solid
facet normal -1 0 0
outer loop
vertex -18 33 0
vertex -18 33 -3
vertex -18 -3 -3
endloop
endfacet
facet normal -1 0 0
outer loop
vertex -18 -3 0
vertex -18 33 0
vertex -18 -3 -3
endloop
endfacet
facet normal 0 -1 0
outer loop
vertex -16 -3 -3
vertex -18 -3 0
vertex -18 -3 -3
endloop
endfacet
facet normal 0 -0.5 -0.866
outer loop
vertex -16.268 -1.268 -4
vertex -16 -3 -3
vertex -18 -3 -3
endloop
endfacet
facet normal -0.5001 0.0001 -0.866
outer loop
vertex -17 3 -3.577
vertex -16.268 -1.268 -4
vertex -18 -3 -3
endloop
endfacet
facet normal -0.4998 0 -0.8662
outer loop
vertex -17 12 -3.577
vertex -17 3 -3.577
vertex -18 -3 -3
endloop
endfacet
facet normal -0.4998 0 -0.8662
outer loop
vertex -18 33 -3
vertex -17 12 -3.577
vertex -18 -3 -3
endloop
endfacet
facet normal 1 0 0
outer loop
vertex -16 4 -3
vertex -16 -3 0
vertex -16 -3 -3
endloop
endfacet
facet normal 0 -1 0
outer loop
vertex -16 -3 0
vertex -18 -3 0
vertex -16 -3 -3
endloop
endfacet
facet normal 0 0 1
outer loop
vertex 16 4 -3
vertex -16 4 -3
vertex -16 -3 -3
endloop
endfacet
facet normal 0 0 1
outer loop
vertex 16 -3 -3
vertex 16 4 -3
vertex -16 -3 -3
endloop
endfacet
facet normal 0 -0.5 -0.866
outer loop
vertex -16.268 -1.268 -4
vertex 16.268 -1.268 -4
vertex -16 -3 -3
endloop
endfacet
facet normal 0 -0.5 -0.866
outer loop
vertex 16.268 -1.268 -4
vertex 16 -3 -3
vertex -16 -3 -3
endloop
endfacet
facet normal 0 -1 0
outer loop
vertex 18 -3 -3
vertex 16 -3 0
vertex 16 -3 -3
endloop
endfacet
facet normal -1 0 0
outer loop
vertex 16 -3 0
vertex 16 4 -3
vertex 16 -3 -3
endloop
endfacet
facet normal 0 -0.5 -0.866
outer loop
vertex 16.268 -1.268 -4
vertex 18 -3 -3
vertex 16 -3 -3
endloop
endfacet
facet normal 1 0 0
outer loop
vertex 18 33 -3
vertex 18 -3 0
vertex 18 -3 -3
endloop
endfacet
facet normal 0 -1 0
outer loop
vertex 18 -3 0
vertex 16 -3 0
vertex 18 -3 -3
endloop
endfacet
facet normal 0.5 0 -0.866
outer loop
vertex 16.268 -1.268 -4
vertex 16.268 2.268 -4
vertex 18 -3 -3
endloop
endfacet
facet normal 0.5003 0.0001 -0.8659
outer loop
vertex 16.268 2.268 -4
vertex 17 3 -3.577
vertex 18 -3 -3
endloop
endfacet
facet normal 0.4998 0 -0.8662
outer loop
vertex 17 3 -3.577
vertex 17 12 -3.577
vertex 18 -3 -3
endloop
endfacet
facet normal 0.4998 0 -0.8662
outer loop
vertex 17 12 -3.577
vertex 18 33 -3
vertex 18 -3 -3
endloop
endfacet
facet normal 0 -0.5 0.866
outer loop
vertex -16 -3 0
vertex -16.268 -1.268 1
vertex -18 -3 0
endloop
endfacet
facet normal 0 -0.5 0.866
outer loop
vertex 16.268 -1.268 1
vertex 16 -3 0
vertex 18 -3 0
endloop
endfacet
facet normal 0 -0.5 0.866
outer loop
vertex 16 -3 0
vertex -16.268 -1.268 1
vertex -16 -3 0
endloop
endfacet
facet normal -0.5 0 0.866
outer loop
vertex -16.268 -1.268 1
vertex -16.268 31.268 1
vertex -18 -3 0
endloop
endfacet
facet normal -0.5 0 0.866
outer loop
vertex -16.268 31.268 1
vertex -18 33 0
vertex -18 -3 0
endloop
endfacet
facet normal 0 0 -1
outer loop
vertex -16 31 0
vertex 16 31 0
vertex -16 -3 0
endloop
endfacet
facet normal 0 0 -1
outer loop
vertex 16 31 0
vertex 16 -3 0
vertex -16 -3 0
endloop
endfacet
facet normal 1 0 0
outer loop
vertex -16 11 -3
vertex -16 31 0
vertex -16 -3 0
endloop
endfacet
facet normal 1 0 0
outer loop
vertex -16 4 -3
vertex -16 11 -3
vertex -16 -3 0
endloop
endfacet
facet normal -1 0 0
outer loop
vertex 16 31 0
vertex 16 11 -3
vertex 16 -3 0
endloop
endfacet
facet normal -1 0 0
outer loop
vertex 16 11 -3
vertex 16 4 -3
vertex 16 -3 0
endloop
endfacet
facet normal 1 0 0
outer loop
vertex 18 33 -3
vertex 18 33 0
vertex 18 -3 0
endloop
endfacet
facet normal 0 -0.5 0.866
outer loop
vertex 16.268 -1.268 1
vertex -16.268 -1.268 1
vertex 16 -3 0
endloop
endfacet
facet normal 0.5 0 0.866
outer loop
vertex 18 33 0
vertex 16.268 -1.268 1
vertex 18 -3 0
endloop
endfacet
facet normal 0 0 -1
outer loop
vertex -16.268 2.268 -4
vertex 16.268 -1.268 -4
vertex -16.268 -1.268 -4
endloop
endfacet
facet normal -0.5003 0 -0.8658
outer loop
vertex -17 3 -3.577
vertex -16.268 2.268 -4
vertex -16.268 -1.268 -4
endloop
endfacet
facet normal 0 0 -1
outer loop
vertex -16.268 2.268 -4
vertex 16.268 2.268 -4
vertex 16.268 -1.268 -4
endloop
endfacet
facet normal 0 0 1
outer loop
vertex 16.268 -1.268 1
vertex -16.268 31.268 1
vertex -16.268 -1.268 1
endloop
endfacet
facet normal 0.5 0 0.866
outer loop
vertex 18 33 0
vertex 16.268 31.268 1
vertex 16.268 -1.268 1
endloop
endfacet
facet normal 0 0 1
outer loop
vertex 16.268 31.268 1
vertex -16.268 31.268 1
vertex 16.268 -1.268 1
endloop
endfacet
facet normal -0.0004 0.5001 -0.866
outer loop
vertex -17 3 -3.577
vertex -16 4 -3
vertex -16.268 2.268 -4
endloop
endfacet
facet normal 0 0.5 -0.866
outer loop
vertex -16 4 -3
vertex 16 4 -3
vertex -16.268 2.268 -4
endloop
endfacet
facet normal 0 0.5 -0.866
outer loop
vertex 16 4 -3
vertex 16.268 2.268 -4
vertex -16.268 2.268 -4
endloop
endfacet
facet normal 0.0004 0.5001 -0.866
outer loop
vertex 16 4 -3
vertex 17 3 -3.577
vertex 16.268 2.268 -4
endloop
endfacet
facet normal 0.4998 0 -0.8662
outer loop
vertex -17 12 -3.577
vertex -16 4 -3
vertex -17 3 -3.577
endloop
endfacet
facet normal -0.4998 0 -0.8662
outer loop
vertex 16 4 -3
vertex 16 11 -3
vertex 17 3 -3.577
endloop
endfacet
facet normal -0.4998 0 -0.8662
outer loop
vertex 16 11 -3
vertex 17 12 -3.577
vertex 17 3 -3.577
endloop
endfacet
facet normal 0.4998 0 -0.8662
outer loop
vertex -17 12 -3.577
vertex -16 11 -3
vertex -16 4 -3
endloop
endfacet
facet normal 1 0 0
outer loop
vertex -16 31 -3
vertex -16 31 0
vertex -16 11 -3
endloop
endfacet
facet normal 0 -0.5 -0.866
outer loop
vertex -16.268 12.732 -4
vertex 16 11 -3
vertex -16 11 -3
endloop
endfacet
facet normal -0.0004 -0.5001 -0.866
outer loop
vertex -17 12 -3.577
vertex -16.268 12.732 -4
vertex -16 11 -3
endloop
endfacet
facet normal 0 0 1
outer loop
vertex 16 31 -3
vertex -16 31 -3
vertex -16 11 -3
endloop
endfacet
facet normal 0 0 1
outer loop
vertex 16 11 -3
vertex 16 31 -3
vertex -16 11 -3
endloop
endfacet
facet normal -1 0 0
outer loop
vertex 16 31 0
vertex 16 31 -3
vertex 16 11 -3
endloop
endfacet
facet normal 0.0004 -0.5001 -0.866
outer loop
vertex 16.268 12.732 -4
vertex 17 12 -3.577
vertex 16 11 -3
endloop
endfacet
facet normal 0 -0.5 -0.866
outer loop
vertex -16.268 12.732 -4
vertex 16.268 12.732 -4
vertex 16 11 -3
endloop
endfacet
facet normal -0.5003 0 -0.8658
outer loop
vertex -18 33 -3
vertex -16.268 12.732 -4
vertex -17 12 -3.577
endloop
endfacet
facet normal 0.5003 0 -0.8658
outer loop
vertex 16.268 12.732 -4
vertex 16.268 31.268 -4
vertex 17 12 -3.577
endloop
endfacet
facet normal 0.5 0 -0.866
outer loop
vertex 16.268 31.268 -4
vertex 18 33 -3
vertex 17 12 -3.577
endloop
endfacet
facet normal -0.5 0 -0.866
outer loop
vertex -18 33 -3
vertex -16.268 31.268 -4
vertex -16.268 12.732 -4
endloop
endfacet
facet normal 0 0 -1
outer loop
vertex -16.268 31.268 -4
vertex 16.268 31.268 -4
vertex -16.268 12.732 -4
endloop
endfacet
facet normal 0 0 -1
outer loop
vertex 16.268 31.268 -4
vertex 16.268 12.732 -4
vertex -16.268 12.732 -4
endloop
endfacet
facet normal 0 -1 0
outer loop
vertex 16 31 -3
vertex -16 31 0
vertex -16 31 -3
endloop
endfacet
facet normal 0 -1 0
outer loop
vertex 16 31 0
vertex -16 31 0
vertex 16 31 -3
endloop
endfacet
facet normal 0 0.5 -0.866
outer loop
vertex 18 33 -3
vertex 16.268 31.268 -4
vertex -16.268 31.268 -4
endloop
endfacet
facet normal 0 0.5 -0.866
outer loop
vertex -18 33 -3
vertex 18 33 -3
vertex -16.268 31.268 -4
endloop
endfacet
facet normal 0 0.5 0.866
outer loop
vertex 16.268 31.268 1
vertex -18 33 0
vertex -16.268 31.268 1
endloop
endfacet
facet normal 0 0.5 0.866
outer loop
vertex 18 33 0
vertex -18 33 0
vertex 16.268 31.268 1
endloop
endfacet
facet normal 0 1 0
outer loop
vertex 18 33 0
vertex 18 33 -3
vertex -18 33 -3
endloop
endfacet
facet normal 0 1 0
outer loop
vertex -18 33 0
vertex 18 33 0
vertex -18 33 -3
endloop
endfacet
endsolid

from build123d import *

# Parameters (mm, degrees)
ESBO_O1_W                = 36
ESBO_O1_H                = 36
RESSALTO_EXTRUS_O1_DEPTH = 1
RESSALTO_EXTRUS_O1_TAPER = 60
RESSALTO_EXTRUS_O2_DEPTH = 3
ESBO_O2_W                = 36
ESBO_O2_H                = 36
ESBO_O2_W_2              = 32
ESBO_O2_H_2              = 7
RESSALTO_EXTRUS_O3_DEPTH = 1
RESSALTO_EXTRUS_O3_TAPER = 60


with BuildPart() as part:
    # Esboço1 → Ressalto-extrusão1 (new body)
    with BuildSketch(Plane.XY):
        with Locations((0, 15)):
            Rectangle(ESBO_O1_W, ESBO_O1_H)
    extrude(amount=RESSALTO_EXTRUS_O1_DEPTH, taper=RESSALTO_EXTRUS_O1_TAPER)

    # Esboço1<4> → Ressalto-extrusão2 (add)
    with BuildSketch(Plane.XY):
        Polygon((16, 31), (16, -1), (16, -3), (18, -3), (18, 33), (0, 33), (-18, 33), (-18, -3), (-16, -3), (-16, -1), (-16, 31), (0, 31), align=None)
    extrude(amount=-RESSALTO_EXTRUS_O2_DEPTH)

    # Esboço2 → Ressalto-extrusão3 (add)
    with BuildSketch(Plane(origin=(0, 0, -3), x_dir=(-1, 0, 0), z_dir=(0, 0, -1))):
        with Locations((0, 15)):
            Rectangle(ESBO_O2_W, ESBO_O2_H)
        with Locations((0, 7.5)):
            Rectangle(ESBO_O2_W_2, ESBO_O2_H_2, mode=Mode.SUBTRACT)
    extrude(amount=RESSALTO_EXTRUS_O3_DEPTH, taper=RESSALTO_EXTRUS_O3_TAPER)


solid = part.part
